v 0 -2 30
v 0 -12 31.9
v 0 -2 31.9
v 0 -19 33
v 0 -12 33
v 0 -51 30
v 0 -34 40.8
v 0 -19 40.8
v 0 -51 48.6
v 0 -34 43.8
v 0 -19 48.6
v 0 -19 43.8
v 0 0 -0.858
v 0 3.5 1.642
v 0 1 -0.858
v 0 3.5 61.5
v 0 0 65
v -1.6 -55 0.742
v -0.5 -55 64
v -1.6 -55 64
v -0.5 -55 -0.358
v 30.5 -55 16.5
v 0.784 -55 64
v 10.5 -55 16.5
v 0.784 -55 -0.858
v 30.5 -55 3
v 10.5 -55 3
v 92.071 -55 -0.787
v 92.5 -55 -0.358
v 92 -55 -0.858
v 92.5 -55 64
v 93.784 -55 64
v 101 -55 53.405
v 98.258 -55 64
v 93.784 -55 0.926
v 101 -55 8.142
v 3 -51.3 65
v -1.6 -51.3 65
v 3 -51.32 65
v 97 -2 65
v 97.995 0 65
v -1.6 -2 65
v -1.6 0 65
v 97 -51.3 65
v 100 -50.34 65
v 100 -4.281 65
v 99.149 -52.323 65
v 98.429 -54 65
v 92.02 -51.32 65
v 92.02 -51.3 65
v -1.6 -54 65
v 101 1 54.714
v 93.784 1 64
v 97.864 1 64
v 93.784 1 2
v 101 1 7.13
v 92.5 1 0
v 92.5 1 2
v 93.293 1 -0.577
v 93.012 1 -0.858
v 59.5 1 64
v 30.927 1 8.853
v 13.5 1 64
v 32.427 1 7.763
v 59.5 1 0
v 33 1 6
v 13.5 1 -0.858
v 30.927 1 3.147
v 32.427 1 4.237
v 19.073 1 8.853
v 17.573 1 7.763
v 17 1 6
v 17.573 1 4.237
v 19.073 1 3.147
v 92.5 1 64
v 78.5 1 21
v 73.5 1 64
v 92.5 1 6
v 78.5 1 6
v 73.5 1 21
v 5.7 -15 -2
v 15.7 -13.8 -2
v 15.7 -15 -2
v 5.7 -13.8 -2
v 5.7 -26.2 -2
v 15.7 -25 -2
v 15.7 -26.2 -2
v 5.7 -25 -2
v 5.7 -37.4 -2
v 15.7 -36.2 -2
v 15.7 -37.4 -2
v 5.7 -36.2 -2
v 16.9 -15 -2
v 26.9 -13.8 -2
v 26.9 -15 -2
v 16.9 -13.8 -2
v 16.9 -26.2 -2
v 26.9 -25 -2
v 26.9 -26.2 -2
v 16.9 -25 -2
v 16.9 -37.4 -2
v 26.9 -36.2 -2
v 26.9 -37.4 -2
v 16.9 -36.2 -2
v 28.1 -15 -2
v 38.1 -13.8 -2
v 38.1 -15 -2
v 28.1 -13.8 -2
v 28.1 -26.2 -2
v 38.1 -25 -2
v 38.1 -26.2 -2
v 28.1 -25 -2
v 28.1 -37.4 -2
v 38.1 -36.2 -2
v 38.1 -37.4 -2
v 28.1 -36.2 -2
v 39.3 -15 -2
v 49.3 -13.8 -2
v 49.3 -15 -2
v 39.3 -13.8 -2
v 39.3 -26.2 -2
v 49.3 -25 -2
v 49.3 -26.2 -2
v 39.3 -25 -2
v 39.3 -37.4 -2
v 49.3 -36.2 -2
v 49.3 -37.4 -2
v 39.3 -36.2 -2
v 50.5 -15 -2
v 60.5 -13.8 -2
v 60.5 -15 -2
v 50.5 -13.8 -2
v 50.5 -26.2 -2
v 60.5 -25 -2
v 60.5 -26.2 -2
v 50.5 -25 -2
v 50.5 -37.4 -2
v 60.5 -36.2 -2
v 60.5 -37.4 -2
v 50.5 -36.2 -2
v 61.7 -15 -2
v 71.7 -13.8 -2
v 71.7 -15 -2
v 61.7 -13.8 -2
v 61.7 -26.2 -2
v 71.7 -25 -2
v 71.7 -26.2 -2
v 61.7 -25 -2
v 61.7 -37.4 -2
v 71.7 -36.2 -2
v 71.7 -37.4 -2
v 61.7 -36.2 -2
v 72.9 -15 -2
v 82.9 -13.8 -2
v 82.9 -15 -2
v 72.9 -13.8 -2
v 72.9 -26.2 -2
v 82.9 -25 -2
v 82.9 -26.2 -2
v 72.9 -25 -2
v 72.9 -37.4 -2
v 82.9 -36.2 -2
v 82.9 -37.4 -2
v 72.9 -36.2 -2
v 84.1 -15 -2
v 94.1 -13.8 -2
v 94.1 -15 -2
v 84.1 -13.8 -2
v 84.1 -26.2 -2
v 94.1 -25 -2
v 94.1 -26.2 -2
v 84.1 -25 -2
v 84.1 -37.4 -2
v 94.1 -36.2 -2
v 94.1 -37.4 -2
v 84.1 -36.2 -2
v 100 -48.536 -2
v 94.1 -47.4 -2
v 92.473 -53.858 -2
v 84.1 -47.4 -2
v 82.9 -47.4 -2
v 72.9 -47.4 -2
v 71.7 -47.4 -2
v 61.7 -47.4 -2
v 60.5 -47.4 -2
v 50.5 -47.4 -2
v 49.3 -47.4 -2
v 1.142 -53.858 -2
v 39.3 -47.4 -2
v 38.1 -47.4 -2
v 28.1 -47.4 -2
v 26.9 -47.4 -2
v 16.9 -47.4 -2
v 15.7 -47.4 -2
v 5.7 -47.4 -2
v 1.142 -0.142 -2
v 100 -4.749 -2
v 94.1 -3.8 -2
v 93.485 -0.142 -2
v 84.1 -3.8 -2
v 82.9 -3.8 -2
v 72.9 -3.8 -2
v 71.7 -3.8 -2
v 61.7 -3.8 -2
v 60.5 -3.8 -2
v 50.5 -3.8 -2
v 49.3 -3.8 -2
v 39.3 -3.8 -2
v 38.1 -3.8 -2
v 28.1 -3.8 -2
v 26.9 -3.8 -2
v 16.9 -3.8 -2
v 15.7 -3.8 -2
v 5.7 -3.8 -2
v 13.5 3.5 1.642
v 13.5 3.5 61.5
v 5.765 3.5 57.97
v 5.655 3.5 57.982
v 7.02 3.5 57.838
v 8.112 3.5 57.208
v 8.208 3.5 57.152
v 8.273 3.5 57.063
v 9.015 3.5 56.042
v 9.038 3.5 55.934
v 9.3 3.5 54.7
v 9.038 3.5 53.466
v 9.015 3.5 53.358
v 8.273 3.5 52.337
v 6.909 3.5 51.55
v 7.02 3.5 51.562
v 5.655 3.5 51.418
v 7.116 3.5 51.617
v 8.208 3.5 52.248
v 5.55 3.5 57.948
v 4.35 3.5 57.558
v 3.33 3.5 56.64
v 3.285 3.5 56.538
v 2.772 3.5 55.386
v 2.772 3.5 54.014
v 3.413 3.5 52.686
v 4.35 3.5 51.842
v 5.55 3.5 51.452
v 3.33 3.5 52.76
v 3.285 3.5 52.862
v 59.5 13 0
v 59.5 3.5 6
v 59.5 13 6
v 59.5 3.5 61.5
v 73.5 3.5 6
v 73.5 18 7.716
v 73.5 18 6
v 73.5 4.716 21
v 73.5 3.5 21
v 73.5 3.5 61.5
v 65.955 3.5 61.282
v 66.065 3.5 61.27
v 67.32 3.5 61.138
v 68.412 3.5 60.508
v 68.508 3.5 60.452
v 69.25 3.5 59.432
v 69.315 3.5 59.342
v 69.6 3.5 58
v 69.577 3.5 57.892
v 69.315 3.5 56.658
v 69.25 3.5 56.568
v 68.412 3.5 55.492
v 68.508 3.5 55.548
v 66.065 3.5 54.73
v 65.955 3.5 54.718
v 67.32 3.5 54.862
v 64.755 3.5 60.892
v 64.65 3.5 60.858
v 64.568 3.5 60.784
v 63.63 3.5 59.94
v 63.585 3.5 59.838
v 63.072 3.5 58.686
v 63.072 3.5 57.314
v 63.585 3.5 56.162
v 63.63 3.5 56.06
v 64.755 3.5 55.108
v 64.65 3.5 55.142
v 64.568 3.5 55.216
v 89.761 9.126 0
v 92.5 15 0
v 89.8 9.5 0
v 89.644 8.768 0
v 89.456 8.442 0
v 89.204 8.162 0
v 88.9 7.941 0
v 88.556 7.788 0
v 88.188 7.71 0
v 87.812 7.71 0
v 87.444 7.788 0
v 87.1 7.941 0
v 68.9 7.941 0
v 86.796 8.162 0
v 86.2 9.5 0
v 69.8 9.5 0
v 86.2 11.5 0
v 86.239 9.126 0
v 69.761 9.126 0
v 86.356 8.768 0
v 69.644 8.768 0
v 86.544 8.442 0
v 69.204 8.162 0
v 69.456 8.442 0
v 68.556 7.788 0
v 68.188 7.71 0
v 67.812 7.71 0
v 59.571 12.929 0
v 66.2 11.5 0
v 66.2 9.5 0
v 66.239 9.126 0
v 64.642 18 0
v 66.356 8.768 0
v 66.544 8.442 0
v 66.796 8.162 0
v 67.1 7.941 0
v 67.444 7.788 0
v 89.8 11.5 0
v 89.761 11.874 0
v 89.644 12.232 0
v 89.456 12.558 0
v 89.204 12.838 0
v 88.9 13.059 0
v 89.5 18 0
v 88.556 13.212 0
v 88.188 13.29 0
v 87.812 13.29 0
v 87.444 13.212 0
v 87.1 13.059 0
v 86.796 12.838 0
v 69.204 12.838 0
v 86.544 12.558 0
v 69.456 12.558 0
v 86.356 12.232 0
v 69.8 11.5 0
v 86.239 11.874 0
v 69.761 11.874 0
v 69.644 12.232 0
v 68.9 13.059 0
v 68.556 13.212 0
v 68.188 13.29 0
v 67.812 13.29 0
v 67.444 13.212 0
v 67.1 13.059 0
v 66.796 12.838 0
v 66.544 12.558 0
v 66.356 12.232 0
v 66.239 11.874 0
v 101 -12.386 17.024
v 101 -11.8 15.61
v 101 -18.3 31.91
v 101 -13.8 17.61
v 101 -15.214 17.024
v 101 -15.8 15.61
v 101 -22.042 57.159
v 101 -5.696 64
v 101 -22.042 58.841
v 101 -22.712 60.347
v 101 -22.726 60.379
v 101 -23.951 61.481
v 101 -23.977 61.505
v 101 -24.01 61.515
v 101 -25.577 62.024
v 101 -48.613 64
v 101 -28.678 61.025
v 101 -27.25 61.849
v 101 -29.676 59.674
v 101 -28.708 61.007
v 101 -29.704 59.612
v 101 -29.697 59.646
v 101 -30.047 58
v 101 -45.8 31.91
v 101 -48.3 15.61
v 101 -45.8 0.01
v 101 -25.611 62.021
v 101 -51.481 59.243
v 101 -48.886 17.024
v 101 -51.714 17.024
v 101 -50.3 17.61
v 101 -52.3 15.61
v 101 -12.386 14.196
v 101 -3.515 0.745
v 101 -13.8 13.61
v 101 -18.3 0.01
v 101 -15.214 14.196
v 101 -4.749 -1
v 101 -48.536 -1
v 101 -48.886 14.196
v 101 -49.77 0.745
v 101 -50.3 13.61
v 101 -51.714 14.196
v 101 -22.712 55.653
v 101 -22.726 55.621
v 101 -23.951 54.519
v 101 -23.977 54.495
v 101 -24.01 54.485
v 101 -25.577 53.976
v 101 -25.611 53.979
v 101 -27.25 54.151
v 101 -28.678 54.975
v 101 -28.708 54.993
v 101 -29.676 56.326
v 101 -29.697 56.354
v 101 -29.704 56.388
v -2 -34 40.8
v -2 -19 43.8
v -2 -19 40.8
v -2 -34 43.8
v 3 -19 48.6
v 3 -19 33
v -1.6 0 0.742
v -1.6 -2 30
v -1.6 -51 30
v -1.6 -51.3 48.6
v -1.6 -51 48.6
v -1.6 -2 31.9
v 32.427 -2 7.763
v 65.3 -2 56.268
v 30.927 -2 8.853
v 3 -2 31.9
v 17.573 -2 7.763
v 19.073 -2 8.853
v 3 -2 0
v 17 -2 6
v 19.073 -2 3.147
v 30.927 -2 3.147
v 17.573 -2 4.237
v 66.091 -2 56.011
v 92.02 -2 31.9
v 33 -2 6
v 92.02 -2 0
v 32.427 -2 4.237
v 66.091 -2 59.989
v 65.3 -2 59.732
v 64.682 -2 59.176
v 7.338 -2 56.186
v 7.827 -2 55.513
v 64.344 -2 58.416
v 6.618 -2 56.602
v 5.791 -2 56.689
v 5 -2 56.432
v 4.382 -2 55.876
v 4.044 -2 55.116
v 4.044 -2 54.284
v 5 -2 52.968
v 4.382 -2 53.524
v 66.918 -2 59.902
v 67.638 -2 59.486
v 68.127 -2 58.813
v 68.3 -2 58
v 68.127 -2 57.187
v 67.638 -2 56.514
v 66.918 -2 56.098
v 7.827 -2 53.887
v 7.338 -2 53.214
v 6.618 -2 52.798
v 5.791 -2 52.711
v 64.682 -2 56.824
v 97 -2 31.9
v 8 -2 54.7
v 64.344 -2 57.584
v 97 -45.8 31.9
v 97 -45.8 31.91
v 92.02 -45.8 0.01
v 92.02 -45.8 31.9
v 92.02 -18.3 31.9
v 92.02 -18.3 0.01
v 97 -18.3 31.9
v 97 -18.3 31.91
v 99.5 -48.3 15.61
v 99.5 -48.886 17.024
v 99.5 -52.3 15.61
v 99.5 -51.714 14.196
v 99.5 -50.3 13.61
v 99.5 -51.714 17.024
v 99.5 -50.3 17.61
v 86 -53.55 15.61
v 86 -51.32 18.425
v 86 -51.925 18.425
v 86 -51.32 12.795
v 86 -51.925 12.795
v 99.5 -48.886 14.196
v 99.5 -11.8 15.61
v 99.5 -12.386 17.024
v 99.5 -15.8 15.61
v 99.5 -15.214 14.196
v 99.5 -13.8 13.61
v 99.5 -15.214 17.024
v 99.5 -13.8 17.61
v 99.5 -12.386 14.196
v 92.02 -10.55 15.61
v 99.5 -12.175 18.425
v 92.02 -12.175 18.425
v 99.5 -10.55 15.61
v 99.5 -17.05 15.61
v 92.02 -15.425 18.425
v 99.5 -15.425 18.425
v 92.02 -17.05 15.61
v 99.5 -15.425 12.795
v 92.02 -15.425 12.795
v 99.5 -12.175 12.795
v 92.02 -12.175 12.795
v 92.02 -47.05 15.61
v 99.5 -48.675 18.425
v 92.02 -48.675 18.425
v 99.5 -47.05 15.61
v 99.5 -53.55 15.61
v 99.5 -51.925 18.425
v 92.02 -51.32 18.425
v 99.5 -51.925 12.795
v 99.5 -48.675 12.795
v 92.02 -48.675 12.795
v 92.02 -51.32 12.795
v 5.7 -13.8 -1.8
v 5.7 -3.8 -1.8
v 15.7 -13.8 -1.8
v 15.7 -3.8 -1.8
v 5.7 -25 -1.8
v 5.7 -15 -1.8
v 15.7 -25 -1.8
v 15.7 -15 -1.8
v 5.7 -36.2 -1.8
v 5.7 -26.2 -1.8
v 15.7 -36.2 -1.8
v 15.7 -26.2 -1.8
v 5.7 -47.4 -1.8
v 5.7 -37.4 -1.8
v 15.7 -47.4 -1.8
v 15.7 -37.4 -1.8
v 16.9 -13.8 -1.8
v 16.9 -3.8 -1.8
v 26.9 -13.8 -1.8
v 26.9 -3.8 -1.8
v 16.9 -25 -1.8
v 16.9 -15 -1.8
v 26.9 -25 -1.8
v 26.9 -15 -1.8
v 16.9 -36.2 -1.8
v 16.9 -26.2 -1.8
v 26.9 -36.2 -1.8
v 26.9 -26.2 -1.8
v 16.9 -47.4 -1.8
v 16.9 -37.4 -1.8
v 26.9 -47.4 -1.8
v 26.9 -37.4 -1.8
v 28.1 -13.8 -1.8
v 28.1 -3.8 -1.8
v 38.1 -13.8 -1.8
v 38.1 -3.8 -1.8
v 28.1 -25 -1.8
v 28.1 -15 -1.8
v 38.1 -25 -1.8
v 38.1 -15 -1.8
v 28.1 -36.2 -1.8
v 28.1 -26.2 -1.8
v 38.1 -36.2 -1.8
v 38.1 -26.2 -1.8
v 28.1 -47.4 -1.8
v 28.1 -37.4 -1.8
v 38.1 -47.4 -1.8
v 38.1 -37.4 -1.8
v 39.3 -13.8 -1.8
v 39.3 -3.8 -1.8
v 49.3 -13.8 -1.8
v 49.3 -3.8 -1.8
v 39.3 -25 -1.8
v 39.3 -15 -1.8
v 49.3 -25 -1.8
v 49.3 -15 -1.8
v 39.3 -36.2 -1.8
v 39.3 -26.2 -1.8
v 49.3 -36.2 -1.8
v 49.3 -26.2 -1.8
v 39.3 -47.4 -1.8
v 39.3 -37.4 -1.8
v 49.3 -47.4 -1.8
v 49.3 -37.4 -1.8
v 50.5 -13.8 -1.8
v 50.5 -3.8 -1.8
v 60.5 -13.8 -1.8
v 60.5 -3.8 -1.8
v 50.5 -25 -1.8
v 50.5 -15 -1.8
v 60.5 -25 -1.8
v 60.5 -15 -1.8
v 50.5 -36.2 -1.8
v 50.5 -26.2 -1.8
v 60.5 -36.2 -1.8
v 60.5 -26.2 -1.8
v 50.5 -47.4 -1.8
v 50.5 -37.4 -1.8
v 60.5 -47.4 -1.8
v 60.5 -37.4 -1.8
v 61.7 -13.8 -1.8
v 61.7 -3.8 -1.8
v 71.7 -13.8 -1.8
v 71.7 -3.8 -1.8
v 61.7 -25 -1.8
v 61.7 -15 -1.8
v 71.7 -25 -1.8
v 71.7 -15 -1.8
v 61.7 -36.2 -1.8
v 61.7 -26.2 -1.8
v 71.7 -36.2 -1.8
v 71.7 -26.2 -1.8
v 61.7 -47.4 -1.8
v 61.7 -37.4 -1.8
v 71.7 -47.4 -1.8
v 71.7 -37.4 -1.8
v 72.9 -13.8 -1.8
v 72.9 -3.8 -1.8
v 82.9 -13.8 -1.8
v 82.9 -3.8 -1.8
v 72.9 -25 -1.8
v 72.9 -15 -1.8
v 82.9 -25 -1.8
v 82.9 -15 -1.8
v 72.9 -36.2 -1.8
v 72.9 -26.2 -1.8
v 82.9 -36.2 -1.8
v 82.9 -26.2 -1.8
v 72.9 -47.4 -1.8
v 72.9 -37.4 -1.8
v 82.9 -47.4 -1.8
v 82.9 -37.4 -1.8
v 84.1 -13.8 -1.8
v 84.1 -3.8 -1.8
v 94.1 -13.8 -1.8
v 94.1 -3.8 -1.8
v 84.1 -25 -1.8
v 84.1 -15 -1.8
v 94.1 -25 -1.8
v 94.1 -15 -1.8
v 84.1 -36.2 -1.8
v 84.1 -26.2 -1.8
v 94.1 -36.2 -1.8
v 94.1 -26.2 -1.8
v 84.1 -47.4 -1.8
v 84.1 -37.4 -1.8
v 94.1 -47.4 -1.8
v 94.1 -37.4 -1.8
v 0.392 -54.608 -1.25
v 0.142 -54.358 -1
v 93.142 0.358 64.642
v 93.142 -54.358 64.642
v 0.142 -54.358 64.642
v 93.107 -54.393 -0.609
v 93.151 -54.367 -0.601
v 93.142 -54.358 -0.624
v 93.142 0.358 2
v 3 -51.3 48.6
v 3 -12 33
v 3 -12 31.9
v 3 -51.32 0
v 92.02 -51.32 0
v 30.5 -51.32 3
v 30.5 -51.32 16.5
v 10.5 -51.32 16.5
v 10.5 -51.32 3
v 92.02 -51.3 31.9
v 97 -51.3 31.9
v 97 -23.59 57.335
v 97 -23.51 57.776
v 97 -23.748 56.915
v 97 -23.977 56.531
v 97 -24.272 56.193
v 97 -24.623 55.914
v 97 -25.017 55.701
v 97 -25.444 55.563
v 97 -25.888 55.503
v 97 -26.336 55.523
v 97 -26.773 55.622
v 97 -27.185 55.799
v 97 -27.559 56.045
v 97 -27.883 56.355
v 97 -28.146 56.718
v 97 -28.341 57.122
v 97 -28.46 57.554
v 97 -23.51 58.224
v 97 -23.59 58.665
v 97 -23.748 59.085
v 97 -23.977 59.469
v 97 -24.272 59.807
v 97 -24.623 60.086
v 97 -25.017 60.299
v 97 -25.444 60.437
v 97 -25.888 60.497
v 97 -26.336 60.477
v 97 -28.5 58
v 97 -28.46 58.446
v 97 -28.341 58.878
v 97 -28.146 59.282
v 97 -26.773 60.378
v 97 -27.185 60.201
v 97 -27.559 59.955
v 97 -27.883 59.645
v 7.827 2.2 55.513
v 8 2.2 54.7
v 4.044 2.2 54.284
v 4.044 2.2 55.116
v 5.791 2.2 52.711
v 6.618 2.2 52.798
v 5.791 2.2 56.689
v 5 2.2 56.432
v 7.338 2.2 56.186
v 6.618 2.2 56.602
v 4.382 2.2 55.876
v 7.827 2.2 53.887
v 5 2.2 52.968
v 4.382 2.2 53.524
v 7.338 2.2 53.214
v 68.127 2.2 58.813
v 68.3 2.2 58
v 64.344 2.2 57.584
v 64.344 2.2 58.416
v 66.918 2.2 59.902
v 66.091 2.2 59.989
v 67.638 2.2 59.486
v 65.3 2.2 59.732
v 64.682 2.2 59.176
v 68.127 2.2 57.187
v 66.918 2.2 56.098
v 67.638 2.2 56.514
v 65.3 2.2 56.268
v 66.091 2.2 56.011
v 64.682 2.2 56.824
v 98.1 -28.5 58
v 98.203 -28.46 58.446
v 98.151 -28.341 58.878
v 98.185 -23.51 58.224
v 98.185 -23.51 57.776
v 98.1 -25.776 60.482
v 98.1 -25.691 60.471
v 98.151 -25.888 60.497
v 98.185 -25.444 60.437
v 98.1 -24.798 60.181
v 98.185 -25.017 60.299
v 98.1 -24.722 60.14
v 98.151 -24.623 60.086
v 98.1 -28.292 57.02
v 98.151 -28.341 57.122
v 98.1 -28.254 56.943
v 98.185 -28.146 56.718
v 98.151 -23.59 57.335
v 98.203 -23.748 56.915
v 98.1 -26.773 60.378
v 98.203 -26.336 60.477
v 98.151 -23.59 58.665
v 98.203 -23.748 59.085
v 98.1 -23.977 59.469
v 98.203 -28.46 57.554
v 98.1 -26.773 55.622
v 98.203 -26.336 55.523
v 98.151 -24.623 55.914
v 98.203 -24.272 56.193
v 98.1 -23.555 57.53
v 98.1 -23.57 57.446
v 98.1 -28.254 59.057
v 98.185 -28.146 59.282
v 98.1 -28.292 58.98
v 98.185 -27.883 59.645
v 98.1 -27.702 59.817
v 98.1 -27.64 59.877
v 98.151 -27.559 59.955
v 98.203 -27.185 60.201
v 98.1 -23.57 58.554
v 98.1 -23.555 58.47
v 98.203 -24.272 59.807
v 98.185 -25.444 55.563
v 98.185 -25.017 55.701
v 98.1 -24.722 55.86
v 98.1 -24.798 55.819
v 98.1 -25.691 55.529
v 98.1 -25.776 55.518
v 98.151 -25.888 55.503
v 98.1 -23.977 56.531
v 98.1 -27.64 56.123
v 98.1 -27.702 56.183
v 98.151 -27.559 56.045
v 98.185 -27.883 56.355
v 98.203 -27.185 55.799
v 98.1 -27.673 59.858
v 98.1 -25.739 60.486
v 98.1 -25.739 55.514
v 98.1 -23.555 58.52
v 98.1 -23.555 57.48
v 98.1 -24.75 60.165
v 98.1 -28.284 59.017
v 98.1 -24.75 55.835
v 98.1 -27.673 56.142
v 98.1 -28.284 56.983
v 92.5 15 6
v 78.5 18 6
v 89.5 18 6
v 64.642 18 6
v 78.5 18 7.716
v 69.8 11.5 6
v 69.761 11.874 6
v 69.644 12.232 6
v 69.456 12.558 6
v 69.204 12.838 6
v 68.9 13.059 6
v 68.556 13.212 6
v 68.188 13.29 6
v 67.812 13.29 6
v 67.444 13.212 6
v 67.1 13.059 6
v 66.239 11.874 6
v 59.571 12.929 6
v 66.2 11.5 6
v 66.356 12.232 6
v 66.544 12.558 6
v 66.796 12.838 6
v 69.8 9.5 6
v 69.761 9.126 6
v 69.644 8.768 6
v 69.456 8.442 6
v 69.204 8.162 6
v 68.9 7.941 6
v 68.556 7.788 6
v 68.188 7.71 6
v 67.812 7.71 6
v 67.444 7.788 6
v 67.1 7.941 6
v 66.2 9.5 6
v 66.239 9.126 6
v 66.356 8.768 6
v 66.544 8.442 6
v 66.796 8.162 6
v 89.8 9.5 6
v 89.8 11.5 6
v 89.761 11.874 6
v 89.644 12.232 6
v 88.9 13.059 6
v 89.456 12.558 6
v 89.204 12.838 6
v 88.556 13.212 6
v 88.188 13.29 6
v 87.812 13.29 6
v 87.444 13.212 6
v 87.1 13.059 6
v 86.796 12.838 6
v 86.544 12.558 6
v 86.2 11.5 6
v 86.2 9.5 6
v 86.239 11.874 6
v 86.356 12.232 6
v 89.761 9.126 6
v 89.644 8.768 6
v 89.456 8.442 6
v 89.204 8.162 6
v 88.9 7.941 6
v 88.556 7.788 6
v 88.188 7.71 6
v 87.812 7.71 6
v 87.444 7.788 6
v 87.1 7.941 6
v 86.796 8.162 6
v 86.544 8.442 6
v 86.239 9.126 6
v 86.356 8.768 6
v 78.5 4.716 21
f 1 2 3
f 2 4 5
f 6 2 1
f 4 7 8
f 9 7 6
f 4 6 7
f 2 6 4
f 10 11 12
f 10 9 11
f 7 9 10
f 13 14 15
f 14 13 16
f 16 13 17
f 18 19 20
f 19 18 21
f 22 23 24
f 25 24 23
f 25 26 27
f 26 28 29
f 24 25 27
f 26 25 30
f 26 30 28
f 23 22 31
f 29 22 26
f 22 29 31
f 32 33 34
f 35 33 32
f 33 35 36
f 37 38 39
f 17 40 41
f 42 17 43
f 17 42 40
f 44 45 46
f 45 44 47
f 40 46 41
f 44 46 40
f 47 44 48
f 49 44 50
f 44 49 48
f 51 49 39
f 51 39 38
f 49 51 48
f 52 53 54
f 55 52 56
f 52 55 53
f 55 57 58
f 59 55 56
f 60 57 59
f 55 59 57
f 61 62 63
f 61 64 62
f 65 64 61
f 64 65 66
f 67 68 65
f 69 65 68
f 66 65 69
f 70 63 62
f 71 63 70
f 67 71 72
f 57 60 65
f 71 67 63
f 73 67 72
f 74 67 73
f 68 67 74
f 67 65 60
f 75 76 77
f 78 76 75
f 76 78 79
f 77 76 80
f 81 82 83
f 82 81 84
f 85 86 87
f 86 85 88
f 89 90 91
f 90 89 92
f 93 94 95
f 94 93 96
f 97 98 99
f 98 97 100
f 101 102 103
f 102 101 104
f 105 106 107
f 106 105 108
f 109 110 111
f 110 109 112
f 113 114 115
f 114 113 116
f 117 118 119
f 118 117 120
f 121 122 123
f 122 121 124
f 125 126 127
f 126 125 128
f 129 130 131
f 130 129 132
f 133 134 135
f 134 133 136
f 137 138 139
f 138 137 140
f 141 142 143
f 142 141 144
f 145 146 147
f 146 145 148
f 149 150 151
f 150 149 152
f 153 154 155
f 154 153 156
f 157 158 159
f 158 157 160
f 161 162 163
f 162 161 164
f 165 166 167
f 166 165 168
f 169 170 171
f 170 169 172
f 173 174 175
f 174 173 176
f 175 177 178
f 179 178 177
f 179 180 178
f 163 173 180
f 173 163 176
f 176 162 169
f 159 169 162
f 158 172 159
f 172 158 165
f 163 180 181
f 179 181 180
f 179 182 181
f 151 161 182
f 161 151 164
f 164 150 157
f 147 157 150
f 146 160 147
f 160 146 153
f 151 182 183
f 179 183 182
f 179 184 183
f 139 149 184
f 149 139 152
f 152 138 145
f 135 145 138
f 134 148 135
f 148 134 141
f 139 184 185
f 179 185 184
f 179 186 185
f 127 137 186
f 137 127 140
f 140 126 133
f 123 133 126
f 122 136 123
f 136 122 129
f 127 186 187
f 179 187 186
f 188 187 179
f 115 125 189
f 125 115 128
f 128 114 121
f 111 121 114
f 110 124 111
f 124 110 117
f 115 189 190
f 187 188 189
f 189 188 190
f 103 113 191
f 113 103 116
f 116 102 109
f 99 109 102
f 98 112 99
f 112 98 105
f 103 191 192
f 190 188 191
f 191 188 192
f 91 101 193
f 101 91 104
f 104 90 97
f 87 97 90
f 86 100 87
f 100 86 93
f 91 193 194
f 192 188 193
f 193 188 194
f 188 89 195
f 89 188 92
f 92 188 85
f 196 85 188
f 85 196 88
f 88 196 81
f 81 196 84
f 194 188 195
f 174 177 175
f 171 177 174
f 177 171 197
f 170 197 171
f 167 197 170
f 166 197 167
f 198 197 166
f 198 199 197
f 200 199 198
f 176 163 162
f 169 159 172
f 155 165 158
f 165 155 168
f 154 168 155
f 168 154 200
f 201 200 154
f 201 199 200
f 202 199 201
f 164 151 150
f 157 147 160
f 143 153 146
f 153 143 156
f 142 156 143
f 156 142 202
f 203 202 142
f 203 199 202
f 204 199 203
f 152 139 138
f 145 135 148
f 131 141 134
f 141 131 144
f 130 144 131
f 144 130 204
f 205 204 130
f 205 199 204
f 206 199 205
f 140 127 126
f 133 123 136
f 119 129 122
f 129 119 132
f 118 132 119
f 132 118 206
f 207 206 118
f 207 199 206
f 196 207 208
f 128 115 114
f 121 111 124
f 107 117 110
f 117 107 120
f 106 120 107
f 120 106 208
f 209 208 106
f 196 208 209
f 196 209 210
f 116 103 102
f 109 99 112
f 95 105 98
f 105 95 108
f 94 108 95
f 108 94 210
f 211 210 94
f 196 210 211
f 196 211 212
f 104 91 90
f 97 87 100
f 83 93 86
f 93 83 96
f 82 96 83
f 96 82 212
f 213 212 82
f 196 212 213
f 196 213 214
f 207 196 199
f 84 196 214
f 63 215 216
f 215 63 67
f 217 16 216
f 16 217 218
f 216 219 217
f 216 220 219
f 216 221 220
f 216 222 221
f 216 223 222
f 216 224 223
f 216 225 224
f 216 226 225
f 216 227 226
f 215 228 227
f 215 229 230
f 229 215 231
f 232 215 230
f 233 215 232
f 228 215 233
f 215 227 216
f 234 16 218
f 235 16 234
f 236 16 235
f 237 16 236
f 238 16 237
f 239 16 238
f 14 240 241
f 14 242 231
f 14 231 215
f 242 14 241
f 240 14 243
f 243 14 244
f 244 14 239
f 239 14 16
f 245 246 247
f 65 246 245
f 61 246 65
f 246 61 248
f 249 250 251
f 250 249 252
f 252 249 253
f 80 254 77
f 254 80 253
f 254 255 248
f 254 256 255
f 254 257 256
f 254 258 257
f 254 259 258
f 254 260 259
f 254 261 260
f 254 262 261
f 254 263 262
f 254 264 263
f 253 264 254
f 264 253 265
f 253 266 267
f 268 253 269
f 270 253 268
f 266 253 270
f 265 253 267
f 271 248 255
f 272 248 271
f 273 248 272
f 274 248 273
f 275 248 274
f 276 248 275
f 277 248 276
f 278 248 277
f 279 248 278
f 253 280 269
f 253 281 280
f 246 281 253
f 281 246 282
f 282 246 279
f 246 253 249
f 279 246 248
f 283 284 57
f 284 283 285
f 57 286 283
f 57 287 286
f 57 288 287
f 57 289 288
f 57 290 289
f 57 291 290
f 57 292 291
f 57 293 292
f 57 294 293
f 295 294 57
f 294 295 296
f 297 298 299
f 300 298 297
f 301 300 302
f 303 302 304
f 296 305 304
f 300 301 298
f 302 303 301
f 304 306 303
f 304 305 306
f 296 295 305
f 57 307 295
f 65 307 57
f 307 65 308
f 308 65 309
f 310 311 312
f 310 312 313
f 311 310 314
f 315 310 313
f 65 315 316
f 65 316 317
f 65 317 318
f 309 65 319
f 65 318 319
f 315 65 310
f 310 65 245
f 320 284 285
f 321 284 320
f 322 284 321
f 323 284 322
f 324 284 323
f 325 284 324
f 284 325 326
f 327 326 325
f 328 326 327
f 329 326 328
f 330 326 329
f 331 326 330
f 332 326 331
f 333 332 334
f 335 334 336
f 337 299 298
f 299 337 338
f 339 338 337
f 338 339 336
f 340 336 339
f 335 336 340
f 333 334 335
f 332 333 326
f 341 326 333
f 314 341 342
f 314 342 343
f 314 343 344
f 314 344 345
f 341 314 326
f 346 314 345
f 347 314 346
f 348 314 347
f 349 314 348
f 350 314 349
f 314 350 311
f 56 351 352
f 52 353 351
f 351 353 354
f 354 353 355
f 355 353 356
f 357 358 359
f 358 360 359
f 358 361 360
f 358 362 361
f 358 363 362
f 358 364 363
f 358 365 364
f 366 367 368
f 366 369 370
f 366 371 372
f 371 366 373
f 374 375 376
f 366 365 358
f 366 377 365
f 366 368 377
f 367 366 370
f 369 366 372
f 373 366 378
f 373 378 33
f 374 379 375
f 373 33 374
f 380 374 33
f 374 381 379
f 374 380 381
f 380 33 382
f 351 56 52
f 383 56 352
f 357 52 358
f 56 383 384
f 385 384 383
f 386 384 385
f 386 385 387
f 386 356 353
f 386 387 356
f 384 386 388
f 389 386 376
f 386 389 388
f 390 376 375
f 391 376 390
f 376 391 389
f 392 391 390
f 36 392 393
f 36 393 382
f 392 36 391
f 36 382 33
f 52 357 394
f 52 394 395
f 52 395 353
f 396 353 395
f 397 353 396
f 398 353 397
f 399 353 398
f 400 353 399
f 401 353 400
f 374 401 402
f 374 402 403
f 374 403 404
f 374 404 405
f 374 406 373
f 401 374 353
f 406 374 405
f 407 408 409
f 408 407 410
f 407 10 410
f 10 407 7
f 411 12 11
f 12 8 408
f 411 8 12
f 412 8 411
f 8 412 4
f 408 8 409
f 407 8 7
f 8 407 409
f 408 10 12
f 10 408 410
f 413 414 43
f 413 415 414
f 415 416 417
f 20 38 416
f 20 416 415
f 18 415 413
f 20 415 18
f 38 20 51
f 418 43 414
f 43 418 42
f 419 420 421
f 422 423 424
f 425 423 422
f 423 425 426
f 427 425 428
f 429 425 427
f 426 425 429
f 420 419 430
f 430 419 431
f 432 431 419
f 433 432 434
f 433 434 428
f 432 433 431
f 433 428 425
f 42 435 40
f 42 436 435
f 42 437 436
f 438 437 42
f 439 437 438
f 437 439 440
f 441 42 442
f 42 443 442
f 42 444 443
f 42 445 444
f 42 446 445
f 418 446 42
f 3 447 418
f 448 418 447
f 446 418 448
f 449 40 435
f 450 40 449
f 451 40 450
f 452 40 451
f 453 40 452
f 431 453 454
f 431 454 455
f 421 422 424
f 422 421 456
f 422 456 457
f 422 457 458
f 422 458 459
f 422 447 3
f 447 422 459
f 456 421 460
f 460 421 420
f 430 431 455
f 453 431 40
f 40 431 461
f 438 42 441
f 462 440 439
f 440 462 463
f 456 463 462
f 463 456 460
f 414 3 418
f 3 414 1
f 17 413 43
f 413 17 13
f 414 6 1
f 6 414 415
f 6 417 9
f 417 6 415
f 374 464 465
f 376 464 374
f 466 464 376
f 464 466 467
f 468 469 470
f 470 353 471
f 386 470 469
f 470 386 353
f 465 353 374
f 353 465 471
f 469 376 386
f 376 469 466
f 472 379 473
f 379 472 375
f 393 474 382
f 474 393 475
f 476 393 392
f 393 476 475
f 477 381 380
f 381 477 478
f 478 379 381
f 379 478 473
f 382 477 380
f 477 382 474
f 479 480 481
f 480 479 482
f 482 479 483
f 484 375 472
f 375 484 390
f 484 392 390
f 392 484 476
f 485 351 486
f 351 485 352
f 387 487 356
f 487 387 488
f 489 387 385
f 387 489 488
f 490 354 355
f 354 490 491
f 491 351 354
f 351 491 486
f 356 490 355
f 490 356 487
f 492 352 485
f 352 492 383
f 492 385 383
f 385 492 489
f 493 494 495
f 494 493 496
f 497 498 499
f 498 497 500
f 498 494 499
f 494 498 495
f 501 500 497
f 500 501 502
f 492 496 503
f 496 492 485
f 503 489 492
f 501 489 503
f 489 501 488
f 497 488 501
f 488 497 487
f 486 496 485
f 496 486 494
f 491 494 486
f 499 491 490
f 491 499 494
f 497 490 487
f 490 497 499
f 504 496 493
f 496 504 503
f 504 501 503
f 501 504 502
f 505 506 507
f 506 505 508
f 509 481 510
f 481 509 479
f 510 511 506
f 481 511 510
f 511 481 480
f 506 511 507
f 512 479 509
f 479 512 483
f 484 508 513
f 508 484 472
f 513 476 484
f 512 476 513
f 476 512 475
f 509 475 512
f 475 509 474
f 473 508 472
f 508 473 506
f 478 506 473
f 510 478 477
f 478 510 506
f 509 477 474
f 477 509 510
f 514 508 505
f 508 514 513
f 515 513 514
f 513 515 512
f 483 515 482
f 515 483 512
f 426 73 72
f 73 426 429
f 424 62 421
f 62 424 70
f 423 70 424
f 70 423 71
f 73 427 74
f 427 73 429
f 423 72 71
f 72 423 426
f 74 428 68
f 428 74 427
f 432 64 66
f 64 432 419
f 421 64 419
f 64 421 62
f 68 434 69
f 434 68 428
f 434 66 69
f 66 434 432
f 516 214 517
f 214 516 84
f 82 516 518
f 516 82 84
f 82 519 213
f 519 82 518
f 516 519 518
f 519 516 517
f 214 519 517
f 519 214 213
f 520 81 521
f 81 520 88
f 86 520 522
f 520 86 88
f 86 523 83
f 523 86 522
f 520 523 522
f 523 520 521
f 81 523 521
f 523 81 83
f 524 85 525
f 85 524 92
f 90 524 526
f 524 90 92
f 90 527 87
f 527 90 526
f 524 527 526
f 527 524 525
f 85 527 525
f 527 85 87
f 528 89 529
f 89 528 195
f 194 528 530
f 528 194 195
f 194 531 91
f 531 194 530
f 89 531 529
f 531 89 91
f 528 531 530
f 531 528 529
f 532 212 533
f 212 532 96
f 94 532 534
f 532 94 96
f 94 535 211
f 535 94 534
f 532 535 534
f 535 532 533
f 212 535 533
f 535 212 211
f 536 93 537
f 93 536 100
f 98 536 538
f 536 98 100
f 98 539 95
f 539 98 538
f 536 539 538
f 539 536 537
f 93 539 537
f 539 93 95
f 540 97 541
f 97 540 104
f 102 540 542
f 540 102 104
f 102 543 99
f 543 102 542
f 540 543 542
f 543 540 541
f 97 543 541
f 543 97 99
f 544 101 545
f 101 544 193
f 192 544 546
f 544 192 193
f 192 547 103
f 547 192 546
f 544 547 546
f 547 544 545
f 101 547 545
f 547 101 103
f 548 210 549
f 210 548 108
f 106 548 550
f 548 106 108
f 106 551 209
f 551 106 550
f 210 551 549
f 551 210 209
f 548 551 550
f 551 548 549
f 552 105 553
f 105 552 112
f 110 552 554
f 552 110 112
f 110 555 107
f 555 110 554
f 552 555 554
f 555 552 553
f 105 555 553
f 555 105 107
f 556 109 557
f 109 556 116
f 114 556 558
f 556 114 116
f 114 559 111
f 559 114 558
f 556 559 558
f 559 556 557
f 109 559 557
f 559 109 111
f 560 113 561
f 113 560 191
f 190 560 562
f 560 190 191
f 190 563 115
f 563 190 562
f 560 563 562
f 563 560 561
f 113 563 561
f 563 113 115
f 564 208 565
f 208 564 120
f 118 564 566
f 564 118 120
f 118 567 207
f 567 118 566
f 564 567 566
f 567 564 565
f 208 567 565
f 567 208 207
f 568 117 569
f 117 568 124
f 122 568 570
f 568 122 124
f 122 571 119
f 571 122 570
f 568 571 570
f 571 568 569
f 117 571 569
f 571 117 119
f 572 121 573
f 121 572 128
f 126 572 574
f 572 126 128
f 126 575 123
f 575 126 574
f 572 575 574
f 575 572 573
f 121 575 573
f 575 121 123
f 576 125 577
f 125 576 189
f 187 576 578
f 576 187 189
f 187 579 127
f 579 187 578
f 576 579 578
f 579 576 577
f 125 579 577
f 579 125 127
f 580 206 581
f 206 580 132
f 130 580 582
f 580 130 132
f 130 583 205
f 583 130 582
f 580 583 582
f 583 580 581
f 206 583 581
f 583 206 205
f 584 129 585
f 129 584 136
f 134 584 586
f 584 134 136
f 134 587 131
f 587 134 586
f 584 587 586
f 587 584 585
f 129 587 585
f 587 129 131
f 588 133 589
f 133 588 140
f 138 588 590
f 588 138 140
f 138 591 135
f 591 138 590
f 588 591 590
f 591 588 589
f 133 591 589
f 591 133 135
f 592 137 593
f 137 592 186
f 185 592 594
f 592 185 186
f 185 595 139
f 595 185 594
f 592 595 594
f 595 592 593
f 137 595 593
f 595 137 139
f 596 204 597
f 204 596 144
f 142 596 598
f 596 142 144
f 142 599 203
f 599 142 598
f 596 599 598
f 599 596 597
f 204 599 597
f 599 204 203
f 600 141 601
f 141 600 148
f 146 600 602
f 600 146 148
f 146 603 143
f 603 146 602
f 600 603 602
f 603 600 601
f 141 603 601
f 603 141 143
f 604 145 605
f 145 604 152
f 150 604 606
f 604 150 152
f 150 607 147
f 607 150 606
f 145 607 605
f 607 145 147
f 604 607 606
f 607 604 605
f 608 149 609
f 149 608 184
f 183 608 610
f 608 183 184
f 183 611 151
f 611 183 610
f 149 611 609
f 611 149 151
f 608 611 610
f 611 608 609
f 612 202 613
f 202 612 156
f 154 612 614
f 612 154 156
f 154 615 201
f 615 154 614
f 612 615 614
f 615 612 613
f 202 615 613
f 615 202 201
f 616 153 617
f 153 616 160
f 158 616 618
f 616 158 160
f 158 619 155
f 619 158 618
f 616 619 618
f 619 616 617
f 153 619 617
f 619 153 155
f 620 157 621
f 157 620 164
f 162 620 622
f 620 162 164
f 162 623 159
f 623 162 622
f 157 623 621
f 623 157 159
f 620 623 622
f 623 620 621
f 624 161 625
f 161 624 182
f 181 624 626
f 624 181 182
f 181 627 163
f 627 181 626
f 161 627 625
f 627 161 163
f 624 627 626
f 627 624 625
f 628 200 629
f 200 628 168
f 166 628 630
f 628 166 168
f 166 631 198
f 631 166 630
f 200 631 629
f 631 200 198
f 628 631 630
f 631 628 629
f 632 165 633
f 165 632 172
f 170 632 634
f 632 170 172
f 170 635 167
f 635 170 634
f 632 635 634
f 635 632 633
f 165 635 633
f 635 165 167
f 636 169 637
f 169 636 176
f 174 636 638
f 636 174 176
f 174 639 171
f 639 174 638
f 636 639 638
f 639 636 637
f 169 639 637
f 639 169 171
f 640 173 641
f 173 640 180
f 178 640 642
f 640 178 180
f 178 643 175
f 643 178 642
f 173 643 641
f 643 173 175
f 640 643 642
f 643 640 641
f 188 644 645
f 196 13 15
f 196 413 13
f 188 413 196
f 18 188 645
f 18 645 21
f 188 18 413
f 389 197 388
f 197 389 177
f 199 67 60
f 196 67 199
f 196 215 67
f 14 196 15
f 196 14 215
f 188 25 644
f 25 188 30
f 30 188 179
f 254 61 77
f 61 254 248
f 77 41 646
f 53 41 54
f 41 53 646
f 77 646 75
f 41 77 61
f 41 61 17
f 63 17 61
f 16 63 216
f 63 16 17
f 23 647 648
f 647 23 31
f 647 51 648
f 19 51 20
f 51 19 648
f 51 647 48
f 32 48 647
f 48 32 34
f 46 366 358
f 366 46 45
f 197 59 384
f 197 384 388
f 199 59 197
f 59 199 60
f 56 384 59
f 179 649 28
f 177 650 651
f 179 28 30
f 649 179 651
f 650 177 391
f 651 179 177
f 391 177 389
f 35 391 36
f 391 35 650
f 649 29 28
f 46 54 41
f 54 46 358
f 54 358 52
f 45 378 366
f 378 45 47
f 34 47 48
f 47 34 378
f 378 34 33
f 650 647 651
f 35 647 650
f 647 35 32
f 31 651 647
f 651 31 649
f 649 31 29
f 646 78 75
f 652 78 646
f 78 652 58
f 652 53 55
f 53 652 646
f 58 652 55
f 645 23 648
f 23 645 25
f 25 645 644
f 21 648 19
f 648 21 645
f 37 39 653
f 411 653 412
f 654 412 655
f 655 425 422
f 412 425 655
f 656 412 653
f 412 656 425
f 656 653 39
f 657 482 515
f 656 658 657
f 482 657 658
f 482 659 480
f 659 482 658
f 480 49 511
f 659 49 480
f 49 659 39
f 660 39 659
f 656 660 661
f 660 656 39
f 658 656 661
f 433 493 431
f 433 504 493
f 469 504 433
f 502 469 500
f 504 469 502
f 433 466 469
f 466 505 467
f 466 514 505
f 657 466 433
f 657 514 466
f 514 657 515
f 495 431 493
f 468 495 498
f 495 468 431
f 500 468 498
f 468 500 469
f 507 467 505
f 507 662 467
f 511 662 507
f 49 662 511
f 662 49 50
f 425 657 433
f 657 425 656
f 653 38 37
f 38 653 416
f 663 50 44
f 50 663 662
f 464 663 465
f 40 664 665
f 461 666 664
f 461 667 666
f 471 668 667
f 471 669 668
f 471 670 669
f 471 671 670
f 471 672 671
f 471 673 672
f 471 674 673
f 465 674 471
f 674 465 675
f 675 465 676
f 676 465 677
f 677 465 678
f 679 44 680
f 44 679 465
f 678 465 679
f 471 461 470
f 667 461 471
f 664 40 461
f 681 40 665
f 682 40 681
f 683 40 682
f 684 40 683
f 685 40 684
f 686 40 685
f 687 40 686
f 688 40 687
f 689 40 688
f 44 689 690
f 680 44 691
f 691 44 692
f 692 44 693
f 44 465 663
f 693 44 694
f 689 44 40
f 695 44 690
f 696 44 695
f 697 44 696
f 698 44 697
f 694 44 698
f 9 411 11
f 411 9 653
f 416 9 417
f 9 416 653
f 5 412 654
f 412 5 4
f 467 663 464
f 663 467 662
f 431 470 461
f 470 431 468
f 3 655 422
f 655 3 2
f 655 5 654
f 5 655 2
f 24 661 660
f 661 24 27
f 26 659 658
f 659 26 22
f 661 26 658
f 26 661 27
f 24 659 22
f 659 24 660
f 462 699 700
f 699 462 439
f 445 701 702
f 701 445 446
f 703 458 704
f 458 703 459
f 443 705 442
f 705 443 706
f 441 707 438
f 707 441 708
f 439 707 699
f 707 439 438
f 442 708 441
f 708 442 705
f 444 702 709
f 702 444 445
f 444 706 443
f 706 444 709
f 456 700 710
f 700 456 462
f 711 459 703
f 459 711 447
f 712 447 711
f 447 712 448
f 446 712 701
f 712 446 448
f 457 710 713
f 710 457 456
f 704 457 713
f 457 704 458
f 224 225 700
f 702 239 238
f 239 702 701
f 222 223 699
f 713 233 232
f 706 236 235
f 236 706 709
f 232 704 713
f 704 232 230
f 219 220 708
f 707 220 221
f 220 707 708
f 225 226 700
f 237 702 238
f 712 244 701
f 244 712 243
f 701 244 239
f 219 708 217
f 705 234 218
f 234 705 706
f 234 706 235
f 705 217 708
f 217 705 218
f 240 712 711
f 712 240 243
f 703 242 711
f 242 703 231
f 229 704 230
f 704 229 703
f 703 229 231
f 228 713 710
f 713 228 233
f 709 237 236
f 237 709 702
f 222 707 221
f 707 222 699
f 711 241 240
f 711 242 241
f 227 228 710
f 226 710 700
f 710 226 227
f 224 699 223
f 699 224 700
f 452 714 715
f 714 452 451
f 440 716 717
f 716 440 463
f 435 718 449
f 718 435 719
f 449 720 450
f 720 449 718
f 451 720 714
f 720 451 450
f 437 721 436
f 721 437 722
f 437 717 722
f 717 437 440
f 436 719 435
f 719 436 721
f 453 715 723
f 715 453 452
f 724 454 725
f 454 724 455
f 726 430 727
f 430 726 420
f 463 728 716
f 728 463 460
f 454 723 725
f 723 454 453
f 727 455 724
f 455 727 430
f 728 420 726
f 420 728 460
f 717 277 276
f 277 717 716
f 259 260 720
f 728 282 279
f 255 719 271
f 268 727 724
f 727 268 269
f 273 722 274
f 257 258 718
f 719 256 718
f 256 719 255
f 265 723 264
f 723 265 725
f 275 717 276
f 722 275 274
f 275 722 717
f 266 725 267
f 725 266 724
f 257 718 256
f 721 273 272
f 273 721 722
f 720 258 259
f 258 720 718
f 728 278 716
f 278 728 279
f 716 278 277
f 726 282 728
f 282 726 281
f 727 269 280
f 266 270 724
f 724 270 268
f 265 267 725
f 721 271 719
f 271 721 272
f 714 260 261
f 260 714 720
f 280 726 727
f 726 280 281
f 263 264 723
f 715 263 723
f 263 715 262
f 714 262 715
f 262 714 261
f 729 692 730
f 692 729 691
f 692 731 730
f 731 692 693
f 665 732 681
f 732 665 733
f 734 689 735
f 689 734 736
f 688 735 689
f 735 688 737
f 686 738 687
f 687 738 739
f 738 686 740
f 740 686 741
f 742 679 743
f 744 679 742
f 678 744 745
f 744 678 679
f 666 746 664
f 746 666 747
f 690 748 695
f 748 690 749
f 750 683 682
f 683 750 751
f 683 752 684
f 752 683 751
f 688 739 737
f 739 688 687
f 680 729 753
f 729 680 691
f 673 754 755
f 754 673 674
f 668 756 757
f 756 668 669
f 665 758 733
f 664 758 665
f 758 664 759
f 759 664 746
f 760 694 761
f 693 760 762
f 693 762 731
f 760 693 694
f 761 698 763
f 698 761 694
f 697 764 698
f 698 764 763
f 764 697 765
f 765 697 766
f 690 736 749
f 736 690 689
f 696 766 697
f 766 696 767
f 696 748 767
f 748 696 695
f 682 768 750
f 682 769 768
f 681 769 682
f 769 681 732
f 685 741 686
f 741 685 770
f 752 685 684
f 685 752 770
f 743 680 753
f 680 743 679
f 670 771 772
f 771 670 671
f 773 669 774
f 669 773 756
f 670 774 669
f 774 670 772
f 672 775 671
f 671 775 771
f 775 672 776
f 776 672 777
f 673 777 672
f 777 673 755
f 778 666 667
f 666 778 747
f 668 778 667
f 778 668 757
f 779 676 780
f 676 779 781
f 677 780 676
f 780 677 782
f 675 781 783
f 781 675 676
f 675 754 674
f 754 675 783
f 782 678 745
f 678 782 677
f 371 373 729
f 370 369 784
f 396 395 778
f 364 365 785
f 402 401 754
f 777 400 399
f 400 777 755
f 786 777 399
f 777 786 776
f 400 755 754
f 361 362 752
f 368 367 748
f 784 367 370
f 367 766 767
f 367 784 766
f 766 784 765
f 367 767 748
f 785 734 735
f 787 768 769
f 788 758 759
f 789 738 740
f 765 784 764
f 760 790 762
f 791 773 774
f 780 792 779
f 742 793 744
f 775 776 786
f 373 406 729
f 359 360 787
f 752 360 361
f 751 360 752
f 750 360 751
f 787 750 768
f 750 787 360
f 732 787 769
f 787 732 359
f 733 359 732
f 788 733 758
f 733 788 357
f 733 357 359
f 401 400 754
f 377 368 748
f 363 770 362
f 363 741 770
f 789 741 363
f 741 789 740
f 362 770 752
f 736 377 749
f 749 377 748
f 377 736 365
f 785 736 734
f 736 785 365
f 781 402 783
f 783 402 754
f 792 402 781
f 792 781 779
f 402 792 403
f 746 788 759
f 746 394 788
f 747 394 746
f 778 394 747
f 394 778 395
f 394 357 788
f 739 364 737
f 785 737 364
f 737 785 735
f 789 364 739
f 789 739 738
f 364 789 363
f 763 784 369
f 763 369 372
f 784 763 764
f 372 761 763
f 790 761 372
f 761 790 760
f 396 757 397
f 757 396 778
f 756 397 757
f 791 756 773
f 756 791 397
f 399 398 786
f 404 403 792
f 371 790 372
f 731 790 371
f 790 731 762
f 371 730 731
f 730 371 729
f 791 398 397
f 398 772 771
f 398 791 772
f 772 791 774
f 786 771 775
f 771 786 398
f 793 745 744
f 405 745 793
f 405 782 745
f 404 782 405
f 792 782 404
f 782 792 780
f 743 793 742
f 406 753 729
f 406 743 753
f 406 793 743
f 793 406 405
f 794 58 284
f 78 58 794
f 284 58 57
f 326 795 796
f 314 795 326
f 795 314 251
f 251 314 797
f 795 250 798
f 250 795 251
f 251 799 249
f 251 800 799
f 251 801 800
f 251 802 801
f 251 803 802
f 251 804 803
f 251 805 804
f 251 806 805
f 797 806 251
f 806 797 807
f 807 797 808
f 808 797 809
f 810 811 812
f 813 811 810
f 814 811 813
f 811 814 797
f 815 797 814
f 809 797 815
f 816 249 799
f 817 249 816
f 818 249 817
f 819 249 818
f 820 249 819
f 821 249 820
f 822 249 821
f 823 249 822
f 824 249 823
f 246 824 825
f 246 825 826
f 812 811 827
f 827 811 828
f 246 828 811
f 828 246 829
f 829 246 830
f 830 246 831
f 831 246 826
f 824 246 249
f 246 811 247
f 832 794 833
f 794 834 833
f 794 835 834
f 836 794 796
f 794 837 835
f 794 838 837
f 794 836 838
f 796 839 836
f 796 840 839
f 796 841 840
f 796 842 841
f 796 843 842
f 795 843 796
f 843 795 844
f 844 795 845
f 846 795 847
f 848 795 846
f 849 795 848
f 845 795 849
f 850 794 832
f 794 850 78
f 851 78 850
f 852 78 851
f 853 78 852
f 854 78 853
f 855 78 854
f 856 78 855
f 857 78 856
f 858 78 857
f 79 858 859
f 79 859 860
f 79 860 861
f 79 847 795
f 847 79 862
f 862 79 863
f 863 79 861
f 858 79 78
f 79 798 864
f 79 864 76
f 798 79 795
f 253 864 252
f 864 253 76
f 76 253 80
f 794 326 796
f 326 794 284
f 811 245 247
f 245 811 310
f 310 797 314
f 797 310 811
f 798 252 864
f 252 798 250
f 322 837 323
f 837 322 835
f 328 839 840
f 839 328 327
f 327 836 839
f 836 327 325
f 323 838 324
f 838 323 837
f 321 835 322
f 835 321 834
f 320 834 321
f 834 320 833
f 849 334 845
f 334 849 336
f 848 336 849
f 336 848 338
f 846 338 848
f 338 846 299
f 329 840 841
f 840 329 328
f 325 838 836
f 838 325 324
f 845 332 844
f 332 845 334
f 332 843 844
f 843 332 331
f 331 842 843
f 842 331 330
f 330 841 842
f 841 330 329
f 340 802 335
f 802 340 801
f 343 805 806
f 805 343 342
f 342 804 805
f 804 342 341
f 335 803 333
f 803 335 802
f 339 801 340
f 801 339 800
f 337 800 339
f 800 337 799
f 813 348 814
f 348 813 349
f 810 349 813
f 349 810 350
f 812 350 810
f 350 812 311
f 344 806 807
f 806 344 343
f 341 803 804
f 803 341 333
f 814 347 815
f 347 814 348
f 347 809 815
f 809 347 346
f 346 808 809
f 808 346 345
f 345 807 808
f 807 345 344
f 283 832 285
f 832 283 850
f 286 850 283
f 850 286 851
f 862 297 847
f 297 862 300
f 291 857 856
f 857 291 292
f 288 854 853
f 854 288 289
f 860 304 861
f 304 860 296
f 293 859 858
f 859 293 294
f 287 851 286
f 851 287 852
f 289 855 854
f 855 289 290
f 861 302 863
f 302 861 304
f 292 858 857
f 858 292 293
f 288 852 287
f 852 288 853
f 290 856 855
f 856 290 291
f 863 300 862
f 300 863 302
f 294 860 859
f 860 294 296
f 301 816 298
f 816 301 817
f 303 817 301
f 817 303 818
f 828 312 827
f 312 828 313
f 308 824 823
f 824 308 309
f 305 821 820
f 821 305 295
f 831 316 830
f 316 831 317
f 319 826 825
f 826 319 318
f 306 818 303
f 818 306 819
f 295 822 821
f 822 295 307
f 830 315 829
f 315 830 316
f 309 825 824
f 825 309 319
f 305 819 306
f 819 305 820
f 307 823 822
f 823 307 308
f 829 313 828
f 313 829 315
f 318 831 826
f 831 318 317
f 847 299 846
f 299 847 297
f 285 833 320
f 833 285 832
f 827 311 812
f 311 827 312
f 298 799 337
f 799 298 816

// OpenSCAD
// PRUSA iteration3
// PSU Cover
// GNU GPL v3
// Josef Průša <iam@josefprusa.cz> and contributors
// http://www.reprap.org/wiki/Prusa_Mendel
// http://prusamendel.org
// 2016-11-06 customized by MilanNXT
// 2016dec05 - fiveangle@gmail.com - fixed minor errors by MilanNXT (accidentially had degree 2-degree offset in NEMA-15
//             socket relocation, causing issue with interface of PSU shelf cutout + nut trap length
//           - relocated NEMA socket to far left corner to prevent conflict with PSU mains crimp connections (MilanNXT
//             version had centered, so required removing crimp lugs and twisting bare wires into PSU - see comments on
//             my make of his design: http://www.thingiverse.com/make:272849
//           - re-oriented switch to normal up-on/down-off configuration instead of forward-backward
//           - fixed switch height hole size too big (present in original Prusa design files)
//           - disabled ridge cuts and badge elements (see "fiveangle" comments below to uncomment if you want to enable them)



cover_height =  2.00; // additinal height to original (0 for original size)
socket_pos   =  2;    // 1 = original position on side
                      // 2 = position on back
socket_type  =  1;    // 1 = single - small (original)
                      // 2 = combined with switch - larger

module CubeAdjust(Xdim, Zdim){
    for (x =[6:11.2:Xdim-12]){
        for (z =[6:11.2:Zdim-12]){
            translate([x,-0.2,z]) cube([10,0.4,10]);
        }
    }
}

module socket_cutout1(){
    translate([45,2,40])cube([27.5,31.9,30]); // socket cutout
    translate([45-4.5,2+15.6,40]) cylinder(r=2,h=50,$fn=8); // socket right hole cutout
    translate([45-4.5+37-0.5,2+15.6,40]) cylinder(r=2,h=50,$fn=8); // socket left hole cutout
    translate([45-4.5+37-0.5,2+15.6,40]) cylinder(r=3.25,h=15-1.5,$fn=6); // socket right hole cutout nuttrap
    translate([45-4.5,2+15.6,40]) cylinder(r=3.25,h=15-1.5,$fn=6); // socket left hole cutout nuttrap
}

module socket_cutout2(){
    translate([45,-13,40]) cube([27.5,47,30]); // socket cutout
    translate([45-4.5,2+15.6-7.5,40]) cylinder(r=2,h=50, $fn=8); // socket right hole cutout
    translate([45-4.5+37-0.5,2+15.6-7.5,40]) cylinder(r=2,h=50,$fn=8); // socket left hole cutout
    translate([45-4.5+37-0.5,2+15.6-7.5,40]) cylinder(r=3.25,h=15-1.5,$fn=6); // socket right hole cutout nuttrap
    translate([45-4.5,2+15.6-7.5,40]) cylinder(r=3.25,h=15-1.5,$fn=6); // socket left hole cutout nuttrap
}

module switch_cutout(){
    translate([5,3,44] )cube([20,13.5,30]);
}

module PSU_COVER(){
    difference(){
        union(){
    
            translate([0,-cover_height,-1]) cube([95,50+15+cover_height,56]); // Base

            translate([0,0-cover_height,-3.5]) cube([14-0.5,50+15+cover_height,5]); // Back pillar 1

            translate([60-0.5,0,-3.5]) cube([14,50+15,5]); // Back pillar 2

            translate([91+4,0-cover_height,-1]) cube([6,50+15+cover_height,56]); // Base for bracket

            translate([-2,45.4-4.6,19])cube([2,3,15]); // nipple on the right

            translate([-1.6,0-cover_height,0]) cube([1.65,65+cover_height,2]); // Frame skirt 1
            translate([-1.6,0-cover_height,0]) cube([1.65,30+cover_height,55]); // Frame skirt 2
            translate([-1.6,0-cover_height,51]) cube([1.65,65+cover_height,4]); // Frame skirt 3
        }
        
        // pretty corners
        translate([-11,-2-cover_height,-2]) rotate([0,0,-45]) cube([10,10,58]);
        translate([95-3+5+1,-2-cover_height,-2]) rotate([0,0,-45]) cube([10,10,58]);

        translate([-3,-9-cover_height,-5]) rotate([-45,0,0]) cube([130,10,10]);
        translate([-3,-12-cover_height,56]) rotate([-45,0,0]) cube([130,10,10]);

        translate([-3,45+15,-5]) rotate([-45,0,0]) cube([130,10,10]);
        translate([-3,48+15,56]) rotate([-45,0,0]) cube([130,10,10]);
        translate([95-3+3,70,-2]) rotate([0,0,-45]) cube([10,10,58]);

        translate([95,0-10-cover_height,-20]) rotate([0,-45,-45]) cube([20,20,20]);
        translate([95,0-10-cover_height,45]) rotate([0,-45,-45]) cube([20,20,20]);

        translate([95,60,-10]) rotate([-35,-45,-45]) cube([20,20,20]);
        translate([95,60,65]) rotate([-55,48,-48]) cube([20,20,20]);

        translate([79,-5-cover_height,68.5]) rotate([0,45,0]) cube([20,90+cover_height,20]);
        translate([79,4-cover_height,-14.5]) rotate([0,45,0]) cube([20,90+cover_height,20]);

        translate([-14,-5-cover_height,68.5]) rotate([0,45,0]) cube([20,90+cover_height,20]);

        translate([3,2-cover_height,2]) cube([89.02,50.02+15+cover_height,50.02-0.7]); // main cutout

        translate([-3,50-16.4+15,2])cube([100,16.5,50-0.7]); // insert cutout

        translate([-3,50-16.4-15.6+15,2])cube([10,100,17]); // right bottom cutout

        translate([85+2,50-16.4-17.6+15+0.9,2])cube([10,100,50-0.7]); // left bottom cutout

        translate([-3,50-16.4-17.6+15+0.9,2])cube([100,100,10]); //  bottom cutout

        if (socket_pos == 1){
            translate([5.5,0,0]) 
            if(socket_type == 1) socket_cutout1();
            else 
            if(socket_type == 2) socket_cutout2();
        }
        else
        if (socket_pos == 2){
            rotate([0,90,0]) translate([-90.8, -1.99,46])
            if(socket_type == 1) socket_cutout1();
            else
            if(socket_type == 2) socket_cutout2();
        }

        if (socket_type == 1) translate([5.5,0,0]) switch_cutout();

        translate([7-0.5-0.5,40-1+15+0.7,-10]) cylinder(r=2,h=50,$fn=15); // left back mounthole cutout
        translate([7-0.5-0.5,40-1+15+0.7,-3.7]) cylinder(r2=2,r1=3.5,h=1.5,$fn=15);

        translate([67.5-0.7-0.5,43.5-1+15+0.5,-10]) cylinder(r=2,h=50,$fn=15); // right back mounthole cutout
        translate([67.5-0.7-0.5,43.5-1+15+0.5,-3.7]) cylinder(r2=2,r1=3.5,h=1.5,$fn=15);

        translate([130,32+26,55-4-25]) rotate([0,-90,0]) cylinder(r=2.5,h=50,$fn=35); // Left side bracket screw hole
        translate([101.1,32+26,55-4-25])rotate([0,-90,0]) cylinder(r2=2.5,r1=4.1,h=3,$fn=15);

        for(i=[0:10]){
            translate([20+i,6,-10]) cylinder(r=3,h=50); // left back mounthole cutout
        }

        translate([-0.3,0-cover_height,-2.2]) CubeAdjust(102,53.25);
    }
}

module PSU_Y_REINFORCEMENT(){
    difference(){
        union(){ // base shape
            translate([59.5,0,-18]) cube([33,6,19]); // reinforcement plate
            translate([73.5,5,-18]) cube([5,16,019]); // vertical_reinforcement    
        }
        union(){ // cutouts
            translate([87.5,-8,-20]) rotate([0,45,0]) cube([10,20,10]); // corner cut
            translate([52.5,-8,-20]) rotate([0,45,0]) cube([10,20,10]); // corner cut
            translate([68.5,20,-34]) rotate([45,0,0]) cube([15,23,20]); // vertical reinf cutout
            
            translate([88,8,-11.5]) rotate([90,0,0]) cylinder(h=10,r=1.8,$fn=30); // hole A
            translate([68,8,-11.5]) rotate([90,0,0]) cylinder(h=10,r=1.8,$fn=30); // hole B
            
            translate([88,8,-9.5]) rotate([90,0,0]) cylinder(h=10,r=1.8,$fn=30); // hole A
            translate([68,8,-9.5]) rotate([90,0,0]) cylinder(h=10,r=1.8,$fn=30); // hole B
            
            translate([86.2,-10,-11.5]) cube([3.6,20,2]); // hole cut extension
            translate([66.2,-10,-11.5]) cube([3.6,20,2]); // hole cut extension
        }
    }
}

module FINAL_PART(){
  rotate([90,0,0])  
  union(){
        PSU_COVER();
        PSU_Y_REINFORCEMENT();
    }   
}

FINAL_PART();
